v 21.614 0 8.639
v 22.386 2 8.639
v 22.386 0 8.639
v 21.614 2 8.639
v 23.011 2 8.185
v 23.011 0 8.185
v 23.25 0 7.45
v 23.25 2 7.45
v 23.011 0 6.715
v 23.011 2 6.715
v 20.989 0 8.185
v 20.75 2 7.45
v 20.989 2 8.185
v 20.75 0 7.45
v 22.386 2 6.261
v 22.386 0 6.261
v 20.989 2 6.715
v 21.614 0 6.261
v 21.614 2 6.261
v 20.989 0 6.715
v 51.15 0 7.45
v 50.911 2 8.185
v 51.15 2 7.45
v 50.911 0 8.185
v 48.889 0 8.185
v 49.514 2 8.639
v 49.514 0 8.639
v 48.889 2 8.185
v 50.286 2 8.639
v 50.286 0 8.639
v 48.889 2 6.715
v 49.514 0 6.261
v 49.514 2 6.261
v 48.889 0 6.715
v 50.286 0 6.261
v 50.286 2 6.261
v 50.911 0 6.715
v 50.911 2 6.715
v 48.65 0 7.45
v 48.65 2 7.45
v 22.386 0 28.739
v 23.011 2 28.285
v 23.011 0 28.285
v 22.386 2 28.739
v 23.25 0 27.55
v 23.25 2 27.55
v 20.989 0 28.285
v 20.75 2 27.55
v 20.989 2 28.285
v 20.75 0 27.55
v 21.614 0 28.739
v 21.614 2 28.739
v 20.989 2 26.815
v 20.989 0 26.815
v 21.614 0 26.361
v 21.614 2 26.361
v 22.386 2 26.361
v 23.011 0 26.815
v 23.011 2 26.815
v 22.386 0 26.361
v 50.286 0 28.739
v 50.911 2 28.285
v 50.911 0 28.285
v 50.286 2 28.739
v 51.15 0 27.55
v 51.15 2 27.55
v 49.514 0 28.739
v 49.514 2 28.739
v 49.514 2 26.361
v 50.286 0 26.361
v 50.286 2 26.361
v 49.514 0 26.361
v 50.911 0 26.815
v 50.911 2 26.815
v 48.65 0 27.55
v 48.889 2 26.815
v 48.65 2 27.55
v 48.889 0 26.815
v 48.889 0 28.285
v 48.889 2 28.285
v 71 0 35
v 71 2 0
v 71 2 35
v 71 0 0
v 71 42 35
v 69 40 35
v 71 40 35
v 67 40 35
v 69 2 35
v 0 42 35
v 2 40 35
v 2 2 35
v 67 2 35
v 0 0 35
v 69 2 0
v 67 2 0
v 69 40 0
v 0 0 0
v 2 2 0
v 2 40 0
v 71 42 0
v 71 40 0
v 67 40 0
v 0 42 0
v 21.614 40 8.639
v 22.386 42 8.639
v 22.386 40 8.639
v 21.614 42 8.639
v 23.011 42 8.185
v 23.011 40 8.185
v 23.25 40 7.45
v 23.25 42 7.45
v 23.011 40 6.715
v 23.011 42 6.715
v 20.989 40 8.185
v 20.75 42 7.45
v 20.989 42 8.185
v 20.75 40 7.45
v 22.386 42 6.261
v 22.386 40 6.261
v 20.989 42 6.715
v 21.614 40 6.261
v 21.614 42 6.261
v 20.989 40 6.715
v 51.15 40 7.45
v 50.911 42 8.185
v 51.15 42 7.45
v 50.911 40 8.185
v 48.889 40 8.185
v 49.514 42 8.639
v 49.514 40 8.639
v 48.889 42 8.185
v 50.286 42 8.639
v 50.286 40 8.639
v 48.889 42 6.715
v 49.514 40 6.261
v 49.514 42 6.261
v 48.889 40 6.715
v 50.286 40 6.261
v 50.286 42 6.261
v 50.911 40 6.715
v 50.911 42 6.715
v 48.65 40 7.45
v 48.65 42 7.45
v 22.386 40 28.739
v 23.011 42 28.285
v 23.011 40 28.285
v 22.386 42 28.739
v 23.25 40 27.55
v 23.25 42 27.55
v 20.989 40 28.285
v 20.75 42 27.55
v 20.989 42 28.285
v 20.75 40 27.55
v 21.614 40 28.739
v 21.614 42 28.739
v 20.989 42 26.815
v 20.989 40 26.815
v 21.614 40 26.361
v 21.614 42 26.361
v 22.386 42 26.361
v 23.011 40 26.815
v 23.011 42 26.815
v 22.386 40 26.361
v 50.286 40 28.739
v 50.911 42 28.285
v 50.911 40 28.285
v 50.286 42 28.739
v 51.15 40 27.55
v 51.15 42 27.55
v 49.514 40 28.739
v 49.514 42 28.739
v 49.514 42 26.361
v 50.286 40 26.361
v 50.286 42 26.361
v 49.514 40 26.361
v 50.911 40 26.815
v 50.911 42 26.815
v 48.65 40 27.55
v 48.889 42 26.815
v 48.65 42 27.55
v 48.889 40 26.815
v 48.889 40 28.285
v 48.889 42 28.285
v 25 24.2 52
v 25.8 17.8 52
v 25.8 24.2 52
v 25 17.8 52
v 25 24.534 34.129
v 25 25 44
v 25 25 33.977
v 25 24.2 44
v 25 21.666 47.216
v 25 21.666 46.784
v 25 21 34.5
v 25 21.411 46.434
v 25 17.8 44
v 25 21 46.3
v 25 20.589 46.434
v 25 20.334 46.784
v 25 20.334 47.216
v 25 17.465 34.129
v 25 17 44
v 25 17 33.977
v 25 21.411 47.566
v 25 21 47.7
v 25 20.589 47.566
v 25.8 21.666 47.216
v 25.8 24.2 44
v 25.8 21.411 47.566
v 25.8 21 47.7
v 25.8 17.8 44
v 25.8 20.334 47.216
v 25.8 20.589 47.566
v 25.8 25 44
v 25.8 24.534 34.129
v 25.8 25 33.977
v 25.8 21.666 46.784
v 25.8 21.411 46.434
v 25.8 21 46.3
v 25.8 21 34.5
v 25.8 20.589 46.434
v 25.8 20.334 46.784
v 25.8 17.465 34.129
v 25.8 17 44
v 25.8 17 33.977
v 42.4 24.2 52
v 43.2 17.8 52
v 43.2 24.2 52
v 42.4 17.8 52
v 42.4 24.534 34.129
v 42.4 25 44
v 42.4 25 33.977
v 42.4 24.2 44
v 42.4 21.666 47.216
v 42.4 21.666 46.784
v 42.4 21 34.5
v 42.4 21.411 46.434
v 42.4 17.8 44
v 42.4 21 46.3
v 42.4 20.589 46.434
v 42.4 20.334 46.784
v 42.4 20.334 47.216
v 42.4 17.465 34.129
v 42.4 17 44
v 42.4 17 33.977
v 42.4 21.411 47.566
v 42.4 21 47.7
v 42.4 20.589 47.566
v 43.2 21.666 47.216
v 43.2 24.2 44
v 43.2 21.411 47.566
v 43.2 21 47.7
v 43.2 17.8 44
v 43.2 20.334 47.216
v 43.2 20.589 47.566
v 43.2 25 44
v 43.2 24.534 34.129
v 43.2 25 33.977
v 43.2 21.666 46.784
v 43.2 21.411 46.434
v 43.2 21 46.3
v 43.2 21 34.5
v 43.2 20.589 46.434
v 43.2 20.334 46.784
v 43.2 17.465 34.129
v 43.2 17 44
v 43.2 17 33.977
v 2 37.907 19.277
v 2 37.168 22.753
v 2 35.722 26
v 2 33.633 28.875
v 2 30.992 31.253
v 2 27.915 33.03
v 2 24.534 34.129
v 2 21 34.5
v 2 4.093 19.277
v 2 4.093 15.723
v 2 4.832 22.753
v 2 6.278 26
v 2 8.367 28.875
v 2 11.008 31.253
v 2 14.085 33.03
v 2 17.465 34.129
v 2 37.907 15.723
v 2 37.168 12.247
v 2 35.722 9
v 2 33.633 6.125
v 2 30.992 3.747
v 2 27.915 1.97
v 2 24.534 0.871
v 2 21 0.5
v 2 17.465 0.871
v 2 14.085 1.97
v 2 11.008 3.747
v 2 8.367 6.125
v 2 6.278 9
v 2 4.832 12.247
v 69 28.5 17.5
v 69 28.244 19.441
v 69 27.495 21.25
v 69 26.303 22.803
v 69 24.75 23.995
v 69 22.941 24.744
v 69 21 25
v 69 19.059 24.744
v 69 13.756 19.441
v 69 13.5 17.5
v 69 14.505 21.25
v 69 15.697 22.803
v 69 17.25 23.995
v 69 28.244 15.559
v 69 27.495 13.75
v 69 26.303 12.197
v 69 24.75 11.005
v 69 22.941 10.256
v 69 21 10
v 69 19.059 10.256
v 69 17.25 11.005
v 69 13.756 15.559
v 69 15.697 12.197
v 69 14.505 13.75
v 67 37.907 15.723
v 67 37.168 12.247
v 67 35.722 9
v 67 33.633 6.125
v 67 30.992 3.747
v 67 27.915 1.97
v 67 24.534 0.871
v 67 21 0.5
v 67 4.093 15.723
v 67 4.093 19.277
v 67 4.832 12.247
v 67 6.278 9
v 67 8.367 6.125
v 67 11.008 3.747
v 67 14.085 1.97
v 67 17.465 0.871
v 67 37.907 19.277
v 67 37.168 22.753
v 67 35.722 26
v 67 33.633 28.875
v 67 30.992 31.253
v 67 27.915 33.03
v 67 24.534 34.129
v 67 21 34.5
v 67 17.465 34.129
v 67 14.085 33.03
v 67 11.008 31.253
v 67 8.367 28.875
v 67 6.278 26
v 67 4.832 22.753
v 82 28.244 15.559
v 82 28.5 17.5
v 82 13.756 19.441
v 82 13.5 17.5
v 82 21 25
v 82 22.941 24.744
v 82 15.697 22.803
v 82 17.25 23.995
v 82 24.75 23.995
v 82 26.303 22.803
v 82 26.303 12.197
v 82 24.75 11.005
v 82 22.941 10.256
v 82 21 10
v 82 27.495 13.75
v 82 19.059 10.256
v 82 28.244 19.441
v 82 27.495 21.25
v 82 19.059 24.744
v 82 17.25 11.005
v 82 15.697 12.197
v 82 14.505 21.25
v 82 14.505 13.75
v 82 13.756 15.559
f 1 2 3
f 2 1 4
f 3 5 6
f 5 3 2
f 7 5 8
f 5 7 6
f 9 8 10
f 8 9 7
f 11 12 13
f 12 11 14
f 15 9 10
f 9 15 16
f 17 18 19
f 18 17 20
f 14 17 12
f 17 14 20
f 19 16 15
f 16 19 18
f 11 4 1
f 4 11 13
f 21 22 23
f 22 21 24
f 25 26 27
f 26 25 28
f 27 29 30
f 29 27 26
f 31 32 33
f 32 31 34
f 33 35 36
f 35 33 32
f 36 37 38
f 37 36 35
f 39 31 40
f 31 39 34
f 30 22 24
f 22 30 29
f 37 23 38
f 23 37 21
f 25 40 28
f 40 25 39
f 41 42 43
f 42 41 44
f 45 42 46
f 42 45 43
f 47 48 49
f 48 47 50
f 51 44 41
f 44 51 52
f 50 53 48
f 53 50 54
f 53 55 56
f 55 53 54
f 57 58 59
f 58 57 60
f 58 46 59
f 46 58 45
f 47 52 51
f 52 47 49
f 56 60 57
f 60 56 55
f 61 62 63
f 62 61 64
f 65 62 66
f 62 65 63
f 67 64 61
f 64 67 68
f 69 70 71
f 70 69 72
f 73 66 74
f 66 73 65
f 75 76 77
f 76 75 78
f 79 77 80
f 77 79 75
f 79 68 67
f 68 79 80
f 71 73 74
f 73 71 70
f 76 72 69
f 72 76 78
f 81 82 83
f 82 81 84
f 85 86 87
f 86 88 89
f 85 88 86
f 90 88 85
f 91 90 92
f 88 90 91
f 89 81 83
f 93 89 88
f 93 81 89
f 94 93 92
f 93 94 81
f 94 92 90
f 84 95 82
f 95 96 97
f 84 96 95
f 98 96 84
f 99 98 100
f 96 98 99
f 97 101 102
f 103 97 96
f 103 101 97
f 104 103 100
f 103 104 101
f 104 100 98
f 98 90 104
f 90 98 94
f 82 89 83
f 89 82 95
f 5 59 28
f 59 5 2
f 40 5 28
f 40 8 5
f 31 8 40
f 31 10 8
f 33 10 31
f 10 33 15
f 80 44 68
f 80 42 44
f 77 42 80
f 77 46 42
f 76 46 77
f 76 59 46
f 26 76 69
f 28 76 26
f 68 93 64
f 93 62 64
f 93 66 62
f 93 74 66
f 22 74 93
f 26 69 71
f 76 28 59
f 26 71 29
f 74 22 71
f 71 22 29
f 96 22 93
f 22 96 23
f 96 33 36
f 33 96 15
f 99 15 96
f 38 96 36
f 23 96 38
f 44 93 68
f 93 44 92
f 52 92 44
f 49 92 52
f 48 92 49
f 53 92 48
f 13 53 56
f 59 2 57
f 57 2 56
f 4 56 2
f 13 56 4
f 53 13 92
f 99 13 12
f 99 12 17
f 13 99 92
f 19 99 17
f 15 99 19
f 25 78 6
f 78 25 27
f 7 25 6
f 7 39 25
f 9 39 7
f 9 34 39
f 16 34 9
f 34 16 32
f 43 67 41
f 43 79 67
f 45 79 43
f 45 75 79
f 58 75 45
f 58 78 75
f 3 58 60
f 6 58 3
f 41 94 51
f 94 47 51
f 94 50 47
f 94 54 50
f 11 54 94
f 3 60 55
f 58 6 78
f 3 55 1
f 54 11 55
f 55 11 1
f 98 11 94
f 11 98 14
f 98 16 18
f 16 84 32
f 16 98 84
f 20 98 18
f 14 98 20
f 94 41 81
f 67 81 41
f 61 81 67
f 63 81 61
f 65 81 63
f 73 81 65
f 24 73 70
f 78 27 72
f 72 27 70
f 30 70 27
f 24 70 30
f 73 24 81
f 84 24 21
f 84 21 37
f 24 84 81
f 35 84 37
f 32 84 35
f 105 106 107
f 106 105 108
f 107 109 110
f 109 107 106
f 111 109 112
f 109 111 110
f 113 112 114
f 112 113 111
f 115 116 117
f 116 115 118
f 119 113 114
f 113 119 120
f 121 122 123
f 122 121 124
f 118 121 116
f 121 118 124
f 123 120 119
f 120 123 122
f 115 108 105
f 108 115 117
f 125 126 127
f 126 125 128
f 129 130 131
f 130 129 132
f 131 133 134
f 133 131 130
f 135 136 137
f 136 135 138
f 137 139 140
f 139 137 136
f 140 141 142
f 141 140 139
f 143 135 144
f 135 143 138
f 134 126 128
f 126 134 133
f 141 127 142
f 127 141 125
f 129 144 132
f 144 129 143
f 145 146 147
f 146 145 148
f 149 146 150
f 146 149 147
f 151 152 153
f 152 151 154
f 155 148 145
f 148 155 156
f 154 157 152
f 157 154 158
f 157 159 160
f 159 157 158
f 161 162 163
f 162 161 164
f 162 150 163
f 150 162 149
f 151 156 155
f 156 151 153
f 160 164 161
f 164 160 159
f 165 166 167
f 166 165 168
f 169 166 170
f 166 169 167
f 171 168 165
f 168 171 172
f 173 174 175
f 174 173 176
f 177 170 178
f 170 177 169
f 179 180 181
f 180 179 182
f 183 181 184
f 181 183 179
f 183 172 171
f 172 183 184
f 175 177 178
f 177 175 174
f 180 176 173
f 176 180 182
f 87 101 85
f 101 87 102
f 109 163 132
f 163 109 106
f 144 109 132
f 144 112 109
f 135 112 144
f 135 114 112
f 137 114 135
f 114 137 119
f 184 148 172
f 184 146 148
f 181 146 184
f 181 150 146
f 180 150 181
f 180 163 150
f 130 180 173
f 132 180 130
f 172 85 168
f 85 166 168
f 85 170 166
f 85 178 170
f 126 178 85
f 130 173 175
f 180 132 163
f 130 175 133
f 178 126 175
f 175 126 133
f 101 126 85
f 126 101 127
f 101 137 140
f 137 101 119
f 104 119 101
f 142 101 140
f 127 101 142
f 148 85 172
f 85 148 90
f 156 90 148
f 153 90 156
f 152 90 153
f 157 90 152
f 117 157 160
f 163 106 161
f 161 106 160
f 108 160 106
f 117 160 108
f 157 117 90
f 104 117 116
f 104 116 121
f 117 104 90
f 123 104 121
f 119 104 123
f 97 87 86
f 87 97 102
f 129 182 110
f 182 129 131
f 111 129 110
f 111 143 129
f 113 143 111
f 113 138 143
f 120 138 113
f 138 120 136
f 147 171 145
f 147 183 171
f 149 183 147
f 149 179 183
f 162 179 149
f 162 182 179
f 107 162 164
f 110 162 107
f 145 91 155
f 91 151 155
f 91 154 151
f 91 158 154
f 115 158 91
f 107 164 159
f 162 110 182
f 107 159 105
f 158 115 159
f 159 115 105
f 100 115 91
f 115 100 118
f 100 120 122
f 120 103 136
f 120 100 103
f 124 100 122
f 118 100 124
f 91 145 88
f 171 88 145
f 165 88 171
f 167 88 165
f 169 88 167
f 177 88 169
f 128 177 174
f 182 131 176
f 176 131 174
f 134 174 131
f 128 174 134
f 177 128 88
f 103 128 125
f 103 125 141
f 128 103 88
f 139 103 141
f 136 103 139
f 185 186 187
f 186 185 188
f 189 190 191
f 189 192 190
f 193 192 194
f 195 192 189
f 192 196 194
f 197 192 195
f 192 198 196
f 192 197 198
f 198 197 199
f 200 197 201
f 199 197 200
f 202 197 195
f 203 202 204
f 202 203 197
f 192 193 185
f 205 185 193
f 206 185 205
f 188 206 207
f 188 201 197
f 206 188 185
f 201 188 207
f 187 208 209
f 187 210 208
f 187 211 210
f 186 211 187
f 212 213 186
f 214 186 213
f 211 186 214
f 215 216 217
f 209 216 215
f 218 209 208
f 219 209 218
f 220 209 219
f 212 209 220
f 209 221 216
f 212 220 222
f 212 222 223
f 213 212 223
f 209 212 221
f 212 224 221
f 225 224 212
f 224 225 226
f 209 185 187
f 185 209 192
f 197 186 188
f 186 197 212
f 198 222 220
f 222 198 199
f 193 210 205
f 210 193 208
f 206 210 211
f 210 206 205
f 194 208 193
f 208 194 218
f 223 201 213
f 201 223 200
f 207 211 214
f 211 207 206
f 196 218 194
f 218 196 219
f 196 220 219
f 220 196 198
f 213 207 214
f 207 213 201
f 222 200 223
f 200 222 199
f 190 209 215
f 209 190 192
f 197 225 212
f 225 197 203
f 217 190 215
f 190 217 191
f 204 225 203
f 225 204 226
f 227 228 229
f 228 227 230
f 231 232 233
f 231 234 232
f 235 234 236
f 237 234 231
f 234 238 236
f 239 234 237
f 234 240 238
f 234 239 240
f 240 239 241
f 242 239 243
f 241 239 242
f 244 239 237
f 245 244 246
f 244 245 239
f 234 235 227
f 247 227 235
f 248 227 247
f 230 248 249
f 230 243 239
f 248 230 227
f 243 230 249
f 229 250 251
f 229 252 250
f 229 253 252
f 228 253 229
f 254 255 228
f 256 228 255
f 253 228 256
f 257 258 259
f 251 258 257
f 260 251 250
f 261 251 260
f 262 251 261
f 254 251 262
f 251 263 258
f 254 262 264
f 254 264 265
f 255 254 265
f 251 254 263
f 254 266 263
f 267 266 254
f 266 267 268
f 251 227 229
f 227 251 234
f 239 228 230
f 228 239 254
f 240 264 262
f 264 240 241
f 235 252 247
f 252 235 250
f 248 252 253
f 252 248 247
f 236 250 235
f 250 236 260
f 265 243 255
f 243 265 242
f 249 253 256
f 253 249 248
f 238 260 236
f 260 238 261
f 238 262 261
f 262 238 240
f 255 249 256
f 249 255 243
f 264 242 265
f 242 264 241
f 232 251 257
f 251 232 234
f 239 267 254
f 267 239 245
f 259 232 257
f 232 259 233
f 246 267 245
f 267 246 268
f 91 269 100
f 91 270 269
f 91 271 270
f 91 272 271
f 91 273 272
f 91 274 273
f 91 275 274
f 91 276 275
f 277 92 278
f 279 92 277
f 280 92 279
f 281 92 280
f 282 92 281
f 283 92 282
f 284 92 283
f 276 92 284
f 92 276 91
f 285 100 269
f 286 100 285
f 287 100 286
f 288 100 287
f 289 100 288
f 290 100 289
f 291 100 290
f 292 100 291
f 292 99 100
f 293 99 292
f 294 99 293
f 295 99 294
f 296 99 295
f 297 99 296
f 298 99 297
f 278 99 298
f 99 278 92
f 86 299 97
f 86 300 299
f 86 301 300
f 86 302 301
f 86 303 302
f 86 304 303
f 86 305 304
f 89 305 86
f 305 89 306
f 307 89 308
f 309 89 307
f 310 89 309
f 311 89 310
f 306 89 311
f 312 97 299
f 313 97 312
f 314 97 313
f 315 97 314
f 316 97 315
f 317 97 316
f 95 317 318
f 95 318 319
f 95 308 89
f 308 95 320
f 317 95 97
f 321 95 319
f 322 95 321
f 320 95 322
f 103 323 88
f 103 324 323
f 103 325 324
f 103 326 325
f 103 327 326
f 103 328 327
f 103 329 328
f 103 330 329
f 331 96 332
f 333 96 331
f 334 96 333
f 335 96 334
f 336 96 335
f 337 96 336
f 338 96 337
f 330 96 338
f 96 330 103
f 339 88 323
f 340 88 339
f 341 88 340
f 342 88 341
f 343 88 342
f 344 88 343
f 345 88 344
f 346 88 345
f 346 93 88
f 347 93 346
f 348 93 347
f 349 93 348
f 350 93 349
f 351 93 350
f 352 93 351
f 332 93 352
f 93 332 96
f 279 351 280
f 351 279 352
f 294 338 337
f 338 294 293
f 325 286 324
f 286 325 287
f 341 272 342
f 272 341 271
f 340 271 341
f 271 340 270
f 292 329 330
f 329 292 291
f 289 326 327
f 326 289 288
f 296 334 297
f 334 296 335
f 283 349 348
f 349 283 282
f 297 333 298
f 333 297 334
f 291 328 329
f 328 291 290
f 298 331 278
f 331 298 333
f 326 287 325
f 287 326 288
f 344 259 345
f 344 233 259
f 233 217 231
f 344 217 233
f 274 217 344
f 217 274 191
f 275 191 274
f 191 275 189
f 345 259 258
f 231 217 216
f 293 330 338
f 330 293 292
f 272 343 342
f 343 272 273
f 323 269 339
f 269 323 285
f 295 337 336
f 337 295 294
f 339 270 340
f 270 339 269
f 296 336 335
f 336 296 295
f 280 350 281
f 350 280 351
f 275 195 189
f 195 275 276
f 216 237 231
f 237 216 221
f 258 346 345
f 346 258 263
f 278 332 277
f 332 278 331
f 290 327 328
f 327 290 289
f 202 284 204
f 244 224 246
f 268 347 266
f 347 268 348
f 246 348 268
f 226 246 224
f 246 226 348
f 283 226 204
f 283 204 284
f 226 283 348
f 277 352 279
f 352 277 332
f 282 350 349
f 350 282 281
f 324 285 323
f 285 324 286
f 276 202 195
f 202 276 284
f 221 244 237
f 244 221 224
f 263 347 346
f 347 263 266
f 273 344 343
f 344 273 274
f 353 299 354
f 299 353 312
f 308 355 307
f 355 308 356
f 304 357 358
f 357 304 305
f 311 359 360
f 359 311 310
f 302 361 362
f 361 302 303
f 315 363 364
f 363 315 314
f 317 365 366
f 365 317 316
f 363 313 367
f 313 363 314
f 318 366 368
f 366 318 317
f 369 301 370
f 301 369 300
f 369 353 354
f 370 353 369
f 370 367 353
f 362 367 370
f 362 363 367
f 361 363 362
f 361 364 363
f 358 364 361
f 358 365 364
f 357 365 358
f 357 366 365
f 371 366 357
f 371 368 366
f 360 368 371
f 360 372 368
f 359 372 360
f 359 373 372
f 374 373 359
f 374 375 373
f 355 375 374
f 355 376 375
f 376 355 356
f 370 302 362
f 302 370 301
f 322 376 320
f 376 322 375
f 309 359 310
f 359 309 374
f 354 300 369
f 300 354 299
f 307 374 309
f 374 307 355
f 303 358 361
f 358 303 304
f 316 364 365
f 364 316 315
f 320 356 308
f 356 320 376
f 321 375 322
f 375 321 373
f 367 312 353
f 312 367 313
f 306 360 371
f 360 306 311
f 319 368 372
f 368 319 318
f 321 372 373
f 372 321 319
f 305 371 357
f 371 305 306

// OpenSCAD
module borne(){
    rotate([0, -90, 0]) translate([-5,0,0])
union(){
difference(){
    cube([10, 6.4, 0.8], center=true);
    cylinder(1.0, d=1.4, center=true, $fn=10);
}
translate([-8-3, 0 ,0]) cube([16, 8.0, 0.8], center=true);}}


module agujerito(){
    rotate([90,0,0]) 
        cylinder(4, d=2.5, $fn=10);    
    }

module agujeritos(){
    daux = (30.5 + 25.3) / 2;
    translate([       22, 3, 6.2 + 2.5/2]) agujerito();
    translate([22 + daux, 3, 6.2 + 2.5/2]) agujerito();
    translate([       22, 3, 35 - 6.2 - 2.5/2]) agujerito();
    translate([22 + daux, 3, 35 - 6.2 - 2.5/2]) agujerito();
}

module placalateral(){
    difference(){
        cube([71.0, 2, 35]);
        agujeritos();
    }
}

module solenoide(){
    union(){
        placalateral();
        translate([0,40,0]) 
            placalateral();

        cube([2, 42, 35]); // placa de atras
        translate([67,0,0]) 
            cube([2, 42, 35]); // placa de adelante

        translate([2, 42/2, 35/2]) 
            rotate([0, 90, 0]) 
                cylinder(h=66, d=34);

        // los dos bornes
        translate([25+0.4, 21, 17+35]) borne();
        translate([25+0.8+17, 21, 17+35]) borne();

        // el eje saliendo adelante
        translate([67+15, 42/2, 35/2])
            rotate([0, -90, 0]) 
                cylinder(h=20, d=15);

    }
}

solenoide();
